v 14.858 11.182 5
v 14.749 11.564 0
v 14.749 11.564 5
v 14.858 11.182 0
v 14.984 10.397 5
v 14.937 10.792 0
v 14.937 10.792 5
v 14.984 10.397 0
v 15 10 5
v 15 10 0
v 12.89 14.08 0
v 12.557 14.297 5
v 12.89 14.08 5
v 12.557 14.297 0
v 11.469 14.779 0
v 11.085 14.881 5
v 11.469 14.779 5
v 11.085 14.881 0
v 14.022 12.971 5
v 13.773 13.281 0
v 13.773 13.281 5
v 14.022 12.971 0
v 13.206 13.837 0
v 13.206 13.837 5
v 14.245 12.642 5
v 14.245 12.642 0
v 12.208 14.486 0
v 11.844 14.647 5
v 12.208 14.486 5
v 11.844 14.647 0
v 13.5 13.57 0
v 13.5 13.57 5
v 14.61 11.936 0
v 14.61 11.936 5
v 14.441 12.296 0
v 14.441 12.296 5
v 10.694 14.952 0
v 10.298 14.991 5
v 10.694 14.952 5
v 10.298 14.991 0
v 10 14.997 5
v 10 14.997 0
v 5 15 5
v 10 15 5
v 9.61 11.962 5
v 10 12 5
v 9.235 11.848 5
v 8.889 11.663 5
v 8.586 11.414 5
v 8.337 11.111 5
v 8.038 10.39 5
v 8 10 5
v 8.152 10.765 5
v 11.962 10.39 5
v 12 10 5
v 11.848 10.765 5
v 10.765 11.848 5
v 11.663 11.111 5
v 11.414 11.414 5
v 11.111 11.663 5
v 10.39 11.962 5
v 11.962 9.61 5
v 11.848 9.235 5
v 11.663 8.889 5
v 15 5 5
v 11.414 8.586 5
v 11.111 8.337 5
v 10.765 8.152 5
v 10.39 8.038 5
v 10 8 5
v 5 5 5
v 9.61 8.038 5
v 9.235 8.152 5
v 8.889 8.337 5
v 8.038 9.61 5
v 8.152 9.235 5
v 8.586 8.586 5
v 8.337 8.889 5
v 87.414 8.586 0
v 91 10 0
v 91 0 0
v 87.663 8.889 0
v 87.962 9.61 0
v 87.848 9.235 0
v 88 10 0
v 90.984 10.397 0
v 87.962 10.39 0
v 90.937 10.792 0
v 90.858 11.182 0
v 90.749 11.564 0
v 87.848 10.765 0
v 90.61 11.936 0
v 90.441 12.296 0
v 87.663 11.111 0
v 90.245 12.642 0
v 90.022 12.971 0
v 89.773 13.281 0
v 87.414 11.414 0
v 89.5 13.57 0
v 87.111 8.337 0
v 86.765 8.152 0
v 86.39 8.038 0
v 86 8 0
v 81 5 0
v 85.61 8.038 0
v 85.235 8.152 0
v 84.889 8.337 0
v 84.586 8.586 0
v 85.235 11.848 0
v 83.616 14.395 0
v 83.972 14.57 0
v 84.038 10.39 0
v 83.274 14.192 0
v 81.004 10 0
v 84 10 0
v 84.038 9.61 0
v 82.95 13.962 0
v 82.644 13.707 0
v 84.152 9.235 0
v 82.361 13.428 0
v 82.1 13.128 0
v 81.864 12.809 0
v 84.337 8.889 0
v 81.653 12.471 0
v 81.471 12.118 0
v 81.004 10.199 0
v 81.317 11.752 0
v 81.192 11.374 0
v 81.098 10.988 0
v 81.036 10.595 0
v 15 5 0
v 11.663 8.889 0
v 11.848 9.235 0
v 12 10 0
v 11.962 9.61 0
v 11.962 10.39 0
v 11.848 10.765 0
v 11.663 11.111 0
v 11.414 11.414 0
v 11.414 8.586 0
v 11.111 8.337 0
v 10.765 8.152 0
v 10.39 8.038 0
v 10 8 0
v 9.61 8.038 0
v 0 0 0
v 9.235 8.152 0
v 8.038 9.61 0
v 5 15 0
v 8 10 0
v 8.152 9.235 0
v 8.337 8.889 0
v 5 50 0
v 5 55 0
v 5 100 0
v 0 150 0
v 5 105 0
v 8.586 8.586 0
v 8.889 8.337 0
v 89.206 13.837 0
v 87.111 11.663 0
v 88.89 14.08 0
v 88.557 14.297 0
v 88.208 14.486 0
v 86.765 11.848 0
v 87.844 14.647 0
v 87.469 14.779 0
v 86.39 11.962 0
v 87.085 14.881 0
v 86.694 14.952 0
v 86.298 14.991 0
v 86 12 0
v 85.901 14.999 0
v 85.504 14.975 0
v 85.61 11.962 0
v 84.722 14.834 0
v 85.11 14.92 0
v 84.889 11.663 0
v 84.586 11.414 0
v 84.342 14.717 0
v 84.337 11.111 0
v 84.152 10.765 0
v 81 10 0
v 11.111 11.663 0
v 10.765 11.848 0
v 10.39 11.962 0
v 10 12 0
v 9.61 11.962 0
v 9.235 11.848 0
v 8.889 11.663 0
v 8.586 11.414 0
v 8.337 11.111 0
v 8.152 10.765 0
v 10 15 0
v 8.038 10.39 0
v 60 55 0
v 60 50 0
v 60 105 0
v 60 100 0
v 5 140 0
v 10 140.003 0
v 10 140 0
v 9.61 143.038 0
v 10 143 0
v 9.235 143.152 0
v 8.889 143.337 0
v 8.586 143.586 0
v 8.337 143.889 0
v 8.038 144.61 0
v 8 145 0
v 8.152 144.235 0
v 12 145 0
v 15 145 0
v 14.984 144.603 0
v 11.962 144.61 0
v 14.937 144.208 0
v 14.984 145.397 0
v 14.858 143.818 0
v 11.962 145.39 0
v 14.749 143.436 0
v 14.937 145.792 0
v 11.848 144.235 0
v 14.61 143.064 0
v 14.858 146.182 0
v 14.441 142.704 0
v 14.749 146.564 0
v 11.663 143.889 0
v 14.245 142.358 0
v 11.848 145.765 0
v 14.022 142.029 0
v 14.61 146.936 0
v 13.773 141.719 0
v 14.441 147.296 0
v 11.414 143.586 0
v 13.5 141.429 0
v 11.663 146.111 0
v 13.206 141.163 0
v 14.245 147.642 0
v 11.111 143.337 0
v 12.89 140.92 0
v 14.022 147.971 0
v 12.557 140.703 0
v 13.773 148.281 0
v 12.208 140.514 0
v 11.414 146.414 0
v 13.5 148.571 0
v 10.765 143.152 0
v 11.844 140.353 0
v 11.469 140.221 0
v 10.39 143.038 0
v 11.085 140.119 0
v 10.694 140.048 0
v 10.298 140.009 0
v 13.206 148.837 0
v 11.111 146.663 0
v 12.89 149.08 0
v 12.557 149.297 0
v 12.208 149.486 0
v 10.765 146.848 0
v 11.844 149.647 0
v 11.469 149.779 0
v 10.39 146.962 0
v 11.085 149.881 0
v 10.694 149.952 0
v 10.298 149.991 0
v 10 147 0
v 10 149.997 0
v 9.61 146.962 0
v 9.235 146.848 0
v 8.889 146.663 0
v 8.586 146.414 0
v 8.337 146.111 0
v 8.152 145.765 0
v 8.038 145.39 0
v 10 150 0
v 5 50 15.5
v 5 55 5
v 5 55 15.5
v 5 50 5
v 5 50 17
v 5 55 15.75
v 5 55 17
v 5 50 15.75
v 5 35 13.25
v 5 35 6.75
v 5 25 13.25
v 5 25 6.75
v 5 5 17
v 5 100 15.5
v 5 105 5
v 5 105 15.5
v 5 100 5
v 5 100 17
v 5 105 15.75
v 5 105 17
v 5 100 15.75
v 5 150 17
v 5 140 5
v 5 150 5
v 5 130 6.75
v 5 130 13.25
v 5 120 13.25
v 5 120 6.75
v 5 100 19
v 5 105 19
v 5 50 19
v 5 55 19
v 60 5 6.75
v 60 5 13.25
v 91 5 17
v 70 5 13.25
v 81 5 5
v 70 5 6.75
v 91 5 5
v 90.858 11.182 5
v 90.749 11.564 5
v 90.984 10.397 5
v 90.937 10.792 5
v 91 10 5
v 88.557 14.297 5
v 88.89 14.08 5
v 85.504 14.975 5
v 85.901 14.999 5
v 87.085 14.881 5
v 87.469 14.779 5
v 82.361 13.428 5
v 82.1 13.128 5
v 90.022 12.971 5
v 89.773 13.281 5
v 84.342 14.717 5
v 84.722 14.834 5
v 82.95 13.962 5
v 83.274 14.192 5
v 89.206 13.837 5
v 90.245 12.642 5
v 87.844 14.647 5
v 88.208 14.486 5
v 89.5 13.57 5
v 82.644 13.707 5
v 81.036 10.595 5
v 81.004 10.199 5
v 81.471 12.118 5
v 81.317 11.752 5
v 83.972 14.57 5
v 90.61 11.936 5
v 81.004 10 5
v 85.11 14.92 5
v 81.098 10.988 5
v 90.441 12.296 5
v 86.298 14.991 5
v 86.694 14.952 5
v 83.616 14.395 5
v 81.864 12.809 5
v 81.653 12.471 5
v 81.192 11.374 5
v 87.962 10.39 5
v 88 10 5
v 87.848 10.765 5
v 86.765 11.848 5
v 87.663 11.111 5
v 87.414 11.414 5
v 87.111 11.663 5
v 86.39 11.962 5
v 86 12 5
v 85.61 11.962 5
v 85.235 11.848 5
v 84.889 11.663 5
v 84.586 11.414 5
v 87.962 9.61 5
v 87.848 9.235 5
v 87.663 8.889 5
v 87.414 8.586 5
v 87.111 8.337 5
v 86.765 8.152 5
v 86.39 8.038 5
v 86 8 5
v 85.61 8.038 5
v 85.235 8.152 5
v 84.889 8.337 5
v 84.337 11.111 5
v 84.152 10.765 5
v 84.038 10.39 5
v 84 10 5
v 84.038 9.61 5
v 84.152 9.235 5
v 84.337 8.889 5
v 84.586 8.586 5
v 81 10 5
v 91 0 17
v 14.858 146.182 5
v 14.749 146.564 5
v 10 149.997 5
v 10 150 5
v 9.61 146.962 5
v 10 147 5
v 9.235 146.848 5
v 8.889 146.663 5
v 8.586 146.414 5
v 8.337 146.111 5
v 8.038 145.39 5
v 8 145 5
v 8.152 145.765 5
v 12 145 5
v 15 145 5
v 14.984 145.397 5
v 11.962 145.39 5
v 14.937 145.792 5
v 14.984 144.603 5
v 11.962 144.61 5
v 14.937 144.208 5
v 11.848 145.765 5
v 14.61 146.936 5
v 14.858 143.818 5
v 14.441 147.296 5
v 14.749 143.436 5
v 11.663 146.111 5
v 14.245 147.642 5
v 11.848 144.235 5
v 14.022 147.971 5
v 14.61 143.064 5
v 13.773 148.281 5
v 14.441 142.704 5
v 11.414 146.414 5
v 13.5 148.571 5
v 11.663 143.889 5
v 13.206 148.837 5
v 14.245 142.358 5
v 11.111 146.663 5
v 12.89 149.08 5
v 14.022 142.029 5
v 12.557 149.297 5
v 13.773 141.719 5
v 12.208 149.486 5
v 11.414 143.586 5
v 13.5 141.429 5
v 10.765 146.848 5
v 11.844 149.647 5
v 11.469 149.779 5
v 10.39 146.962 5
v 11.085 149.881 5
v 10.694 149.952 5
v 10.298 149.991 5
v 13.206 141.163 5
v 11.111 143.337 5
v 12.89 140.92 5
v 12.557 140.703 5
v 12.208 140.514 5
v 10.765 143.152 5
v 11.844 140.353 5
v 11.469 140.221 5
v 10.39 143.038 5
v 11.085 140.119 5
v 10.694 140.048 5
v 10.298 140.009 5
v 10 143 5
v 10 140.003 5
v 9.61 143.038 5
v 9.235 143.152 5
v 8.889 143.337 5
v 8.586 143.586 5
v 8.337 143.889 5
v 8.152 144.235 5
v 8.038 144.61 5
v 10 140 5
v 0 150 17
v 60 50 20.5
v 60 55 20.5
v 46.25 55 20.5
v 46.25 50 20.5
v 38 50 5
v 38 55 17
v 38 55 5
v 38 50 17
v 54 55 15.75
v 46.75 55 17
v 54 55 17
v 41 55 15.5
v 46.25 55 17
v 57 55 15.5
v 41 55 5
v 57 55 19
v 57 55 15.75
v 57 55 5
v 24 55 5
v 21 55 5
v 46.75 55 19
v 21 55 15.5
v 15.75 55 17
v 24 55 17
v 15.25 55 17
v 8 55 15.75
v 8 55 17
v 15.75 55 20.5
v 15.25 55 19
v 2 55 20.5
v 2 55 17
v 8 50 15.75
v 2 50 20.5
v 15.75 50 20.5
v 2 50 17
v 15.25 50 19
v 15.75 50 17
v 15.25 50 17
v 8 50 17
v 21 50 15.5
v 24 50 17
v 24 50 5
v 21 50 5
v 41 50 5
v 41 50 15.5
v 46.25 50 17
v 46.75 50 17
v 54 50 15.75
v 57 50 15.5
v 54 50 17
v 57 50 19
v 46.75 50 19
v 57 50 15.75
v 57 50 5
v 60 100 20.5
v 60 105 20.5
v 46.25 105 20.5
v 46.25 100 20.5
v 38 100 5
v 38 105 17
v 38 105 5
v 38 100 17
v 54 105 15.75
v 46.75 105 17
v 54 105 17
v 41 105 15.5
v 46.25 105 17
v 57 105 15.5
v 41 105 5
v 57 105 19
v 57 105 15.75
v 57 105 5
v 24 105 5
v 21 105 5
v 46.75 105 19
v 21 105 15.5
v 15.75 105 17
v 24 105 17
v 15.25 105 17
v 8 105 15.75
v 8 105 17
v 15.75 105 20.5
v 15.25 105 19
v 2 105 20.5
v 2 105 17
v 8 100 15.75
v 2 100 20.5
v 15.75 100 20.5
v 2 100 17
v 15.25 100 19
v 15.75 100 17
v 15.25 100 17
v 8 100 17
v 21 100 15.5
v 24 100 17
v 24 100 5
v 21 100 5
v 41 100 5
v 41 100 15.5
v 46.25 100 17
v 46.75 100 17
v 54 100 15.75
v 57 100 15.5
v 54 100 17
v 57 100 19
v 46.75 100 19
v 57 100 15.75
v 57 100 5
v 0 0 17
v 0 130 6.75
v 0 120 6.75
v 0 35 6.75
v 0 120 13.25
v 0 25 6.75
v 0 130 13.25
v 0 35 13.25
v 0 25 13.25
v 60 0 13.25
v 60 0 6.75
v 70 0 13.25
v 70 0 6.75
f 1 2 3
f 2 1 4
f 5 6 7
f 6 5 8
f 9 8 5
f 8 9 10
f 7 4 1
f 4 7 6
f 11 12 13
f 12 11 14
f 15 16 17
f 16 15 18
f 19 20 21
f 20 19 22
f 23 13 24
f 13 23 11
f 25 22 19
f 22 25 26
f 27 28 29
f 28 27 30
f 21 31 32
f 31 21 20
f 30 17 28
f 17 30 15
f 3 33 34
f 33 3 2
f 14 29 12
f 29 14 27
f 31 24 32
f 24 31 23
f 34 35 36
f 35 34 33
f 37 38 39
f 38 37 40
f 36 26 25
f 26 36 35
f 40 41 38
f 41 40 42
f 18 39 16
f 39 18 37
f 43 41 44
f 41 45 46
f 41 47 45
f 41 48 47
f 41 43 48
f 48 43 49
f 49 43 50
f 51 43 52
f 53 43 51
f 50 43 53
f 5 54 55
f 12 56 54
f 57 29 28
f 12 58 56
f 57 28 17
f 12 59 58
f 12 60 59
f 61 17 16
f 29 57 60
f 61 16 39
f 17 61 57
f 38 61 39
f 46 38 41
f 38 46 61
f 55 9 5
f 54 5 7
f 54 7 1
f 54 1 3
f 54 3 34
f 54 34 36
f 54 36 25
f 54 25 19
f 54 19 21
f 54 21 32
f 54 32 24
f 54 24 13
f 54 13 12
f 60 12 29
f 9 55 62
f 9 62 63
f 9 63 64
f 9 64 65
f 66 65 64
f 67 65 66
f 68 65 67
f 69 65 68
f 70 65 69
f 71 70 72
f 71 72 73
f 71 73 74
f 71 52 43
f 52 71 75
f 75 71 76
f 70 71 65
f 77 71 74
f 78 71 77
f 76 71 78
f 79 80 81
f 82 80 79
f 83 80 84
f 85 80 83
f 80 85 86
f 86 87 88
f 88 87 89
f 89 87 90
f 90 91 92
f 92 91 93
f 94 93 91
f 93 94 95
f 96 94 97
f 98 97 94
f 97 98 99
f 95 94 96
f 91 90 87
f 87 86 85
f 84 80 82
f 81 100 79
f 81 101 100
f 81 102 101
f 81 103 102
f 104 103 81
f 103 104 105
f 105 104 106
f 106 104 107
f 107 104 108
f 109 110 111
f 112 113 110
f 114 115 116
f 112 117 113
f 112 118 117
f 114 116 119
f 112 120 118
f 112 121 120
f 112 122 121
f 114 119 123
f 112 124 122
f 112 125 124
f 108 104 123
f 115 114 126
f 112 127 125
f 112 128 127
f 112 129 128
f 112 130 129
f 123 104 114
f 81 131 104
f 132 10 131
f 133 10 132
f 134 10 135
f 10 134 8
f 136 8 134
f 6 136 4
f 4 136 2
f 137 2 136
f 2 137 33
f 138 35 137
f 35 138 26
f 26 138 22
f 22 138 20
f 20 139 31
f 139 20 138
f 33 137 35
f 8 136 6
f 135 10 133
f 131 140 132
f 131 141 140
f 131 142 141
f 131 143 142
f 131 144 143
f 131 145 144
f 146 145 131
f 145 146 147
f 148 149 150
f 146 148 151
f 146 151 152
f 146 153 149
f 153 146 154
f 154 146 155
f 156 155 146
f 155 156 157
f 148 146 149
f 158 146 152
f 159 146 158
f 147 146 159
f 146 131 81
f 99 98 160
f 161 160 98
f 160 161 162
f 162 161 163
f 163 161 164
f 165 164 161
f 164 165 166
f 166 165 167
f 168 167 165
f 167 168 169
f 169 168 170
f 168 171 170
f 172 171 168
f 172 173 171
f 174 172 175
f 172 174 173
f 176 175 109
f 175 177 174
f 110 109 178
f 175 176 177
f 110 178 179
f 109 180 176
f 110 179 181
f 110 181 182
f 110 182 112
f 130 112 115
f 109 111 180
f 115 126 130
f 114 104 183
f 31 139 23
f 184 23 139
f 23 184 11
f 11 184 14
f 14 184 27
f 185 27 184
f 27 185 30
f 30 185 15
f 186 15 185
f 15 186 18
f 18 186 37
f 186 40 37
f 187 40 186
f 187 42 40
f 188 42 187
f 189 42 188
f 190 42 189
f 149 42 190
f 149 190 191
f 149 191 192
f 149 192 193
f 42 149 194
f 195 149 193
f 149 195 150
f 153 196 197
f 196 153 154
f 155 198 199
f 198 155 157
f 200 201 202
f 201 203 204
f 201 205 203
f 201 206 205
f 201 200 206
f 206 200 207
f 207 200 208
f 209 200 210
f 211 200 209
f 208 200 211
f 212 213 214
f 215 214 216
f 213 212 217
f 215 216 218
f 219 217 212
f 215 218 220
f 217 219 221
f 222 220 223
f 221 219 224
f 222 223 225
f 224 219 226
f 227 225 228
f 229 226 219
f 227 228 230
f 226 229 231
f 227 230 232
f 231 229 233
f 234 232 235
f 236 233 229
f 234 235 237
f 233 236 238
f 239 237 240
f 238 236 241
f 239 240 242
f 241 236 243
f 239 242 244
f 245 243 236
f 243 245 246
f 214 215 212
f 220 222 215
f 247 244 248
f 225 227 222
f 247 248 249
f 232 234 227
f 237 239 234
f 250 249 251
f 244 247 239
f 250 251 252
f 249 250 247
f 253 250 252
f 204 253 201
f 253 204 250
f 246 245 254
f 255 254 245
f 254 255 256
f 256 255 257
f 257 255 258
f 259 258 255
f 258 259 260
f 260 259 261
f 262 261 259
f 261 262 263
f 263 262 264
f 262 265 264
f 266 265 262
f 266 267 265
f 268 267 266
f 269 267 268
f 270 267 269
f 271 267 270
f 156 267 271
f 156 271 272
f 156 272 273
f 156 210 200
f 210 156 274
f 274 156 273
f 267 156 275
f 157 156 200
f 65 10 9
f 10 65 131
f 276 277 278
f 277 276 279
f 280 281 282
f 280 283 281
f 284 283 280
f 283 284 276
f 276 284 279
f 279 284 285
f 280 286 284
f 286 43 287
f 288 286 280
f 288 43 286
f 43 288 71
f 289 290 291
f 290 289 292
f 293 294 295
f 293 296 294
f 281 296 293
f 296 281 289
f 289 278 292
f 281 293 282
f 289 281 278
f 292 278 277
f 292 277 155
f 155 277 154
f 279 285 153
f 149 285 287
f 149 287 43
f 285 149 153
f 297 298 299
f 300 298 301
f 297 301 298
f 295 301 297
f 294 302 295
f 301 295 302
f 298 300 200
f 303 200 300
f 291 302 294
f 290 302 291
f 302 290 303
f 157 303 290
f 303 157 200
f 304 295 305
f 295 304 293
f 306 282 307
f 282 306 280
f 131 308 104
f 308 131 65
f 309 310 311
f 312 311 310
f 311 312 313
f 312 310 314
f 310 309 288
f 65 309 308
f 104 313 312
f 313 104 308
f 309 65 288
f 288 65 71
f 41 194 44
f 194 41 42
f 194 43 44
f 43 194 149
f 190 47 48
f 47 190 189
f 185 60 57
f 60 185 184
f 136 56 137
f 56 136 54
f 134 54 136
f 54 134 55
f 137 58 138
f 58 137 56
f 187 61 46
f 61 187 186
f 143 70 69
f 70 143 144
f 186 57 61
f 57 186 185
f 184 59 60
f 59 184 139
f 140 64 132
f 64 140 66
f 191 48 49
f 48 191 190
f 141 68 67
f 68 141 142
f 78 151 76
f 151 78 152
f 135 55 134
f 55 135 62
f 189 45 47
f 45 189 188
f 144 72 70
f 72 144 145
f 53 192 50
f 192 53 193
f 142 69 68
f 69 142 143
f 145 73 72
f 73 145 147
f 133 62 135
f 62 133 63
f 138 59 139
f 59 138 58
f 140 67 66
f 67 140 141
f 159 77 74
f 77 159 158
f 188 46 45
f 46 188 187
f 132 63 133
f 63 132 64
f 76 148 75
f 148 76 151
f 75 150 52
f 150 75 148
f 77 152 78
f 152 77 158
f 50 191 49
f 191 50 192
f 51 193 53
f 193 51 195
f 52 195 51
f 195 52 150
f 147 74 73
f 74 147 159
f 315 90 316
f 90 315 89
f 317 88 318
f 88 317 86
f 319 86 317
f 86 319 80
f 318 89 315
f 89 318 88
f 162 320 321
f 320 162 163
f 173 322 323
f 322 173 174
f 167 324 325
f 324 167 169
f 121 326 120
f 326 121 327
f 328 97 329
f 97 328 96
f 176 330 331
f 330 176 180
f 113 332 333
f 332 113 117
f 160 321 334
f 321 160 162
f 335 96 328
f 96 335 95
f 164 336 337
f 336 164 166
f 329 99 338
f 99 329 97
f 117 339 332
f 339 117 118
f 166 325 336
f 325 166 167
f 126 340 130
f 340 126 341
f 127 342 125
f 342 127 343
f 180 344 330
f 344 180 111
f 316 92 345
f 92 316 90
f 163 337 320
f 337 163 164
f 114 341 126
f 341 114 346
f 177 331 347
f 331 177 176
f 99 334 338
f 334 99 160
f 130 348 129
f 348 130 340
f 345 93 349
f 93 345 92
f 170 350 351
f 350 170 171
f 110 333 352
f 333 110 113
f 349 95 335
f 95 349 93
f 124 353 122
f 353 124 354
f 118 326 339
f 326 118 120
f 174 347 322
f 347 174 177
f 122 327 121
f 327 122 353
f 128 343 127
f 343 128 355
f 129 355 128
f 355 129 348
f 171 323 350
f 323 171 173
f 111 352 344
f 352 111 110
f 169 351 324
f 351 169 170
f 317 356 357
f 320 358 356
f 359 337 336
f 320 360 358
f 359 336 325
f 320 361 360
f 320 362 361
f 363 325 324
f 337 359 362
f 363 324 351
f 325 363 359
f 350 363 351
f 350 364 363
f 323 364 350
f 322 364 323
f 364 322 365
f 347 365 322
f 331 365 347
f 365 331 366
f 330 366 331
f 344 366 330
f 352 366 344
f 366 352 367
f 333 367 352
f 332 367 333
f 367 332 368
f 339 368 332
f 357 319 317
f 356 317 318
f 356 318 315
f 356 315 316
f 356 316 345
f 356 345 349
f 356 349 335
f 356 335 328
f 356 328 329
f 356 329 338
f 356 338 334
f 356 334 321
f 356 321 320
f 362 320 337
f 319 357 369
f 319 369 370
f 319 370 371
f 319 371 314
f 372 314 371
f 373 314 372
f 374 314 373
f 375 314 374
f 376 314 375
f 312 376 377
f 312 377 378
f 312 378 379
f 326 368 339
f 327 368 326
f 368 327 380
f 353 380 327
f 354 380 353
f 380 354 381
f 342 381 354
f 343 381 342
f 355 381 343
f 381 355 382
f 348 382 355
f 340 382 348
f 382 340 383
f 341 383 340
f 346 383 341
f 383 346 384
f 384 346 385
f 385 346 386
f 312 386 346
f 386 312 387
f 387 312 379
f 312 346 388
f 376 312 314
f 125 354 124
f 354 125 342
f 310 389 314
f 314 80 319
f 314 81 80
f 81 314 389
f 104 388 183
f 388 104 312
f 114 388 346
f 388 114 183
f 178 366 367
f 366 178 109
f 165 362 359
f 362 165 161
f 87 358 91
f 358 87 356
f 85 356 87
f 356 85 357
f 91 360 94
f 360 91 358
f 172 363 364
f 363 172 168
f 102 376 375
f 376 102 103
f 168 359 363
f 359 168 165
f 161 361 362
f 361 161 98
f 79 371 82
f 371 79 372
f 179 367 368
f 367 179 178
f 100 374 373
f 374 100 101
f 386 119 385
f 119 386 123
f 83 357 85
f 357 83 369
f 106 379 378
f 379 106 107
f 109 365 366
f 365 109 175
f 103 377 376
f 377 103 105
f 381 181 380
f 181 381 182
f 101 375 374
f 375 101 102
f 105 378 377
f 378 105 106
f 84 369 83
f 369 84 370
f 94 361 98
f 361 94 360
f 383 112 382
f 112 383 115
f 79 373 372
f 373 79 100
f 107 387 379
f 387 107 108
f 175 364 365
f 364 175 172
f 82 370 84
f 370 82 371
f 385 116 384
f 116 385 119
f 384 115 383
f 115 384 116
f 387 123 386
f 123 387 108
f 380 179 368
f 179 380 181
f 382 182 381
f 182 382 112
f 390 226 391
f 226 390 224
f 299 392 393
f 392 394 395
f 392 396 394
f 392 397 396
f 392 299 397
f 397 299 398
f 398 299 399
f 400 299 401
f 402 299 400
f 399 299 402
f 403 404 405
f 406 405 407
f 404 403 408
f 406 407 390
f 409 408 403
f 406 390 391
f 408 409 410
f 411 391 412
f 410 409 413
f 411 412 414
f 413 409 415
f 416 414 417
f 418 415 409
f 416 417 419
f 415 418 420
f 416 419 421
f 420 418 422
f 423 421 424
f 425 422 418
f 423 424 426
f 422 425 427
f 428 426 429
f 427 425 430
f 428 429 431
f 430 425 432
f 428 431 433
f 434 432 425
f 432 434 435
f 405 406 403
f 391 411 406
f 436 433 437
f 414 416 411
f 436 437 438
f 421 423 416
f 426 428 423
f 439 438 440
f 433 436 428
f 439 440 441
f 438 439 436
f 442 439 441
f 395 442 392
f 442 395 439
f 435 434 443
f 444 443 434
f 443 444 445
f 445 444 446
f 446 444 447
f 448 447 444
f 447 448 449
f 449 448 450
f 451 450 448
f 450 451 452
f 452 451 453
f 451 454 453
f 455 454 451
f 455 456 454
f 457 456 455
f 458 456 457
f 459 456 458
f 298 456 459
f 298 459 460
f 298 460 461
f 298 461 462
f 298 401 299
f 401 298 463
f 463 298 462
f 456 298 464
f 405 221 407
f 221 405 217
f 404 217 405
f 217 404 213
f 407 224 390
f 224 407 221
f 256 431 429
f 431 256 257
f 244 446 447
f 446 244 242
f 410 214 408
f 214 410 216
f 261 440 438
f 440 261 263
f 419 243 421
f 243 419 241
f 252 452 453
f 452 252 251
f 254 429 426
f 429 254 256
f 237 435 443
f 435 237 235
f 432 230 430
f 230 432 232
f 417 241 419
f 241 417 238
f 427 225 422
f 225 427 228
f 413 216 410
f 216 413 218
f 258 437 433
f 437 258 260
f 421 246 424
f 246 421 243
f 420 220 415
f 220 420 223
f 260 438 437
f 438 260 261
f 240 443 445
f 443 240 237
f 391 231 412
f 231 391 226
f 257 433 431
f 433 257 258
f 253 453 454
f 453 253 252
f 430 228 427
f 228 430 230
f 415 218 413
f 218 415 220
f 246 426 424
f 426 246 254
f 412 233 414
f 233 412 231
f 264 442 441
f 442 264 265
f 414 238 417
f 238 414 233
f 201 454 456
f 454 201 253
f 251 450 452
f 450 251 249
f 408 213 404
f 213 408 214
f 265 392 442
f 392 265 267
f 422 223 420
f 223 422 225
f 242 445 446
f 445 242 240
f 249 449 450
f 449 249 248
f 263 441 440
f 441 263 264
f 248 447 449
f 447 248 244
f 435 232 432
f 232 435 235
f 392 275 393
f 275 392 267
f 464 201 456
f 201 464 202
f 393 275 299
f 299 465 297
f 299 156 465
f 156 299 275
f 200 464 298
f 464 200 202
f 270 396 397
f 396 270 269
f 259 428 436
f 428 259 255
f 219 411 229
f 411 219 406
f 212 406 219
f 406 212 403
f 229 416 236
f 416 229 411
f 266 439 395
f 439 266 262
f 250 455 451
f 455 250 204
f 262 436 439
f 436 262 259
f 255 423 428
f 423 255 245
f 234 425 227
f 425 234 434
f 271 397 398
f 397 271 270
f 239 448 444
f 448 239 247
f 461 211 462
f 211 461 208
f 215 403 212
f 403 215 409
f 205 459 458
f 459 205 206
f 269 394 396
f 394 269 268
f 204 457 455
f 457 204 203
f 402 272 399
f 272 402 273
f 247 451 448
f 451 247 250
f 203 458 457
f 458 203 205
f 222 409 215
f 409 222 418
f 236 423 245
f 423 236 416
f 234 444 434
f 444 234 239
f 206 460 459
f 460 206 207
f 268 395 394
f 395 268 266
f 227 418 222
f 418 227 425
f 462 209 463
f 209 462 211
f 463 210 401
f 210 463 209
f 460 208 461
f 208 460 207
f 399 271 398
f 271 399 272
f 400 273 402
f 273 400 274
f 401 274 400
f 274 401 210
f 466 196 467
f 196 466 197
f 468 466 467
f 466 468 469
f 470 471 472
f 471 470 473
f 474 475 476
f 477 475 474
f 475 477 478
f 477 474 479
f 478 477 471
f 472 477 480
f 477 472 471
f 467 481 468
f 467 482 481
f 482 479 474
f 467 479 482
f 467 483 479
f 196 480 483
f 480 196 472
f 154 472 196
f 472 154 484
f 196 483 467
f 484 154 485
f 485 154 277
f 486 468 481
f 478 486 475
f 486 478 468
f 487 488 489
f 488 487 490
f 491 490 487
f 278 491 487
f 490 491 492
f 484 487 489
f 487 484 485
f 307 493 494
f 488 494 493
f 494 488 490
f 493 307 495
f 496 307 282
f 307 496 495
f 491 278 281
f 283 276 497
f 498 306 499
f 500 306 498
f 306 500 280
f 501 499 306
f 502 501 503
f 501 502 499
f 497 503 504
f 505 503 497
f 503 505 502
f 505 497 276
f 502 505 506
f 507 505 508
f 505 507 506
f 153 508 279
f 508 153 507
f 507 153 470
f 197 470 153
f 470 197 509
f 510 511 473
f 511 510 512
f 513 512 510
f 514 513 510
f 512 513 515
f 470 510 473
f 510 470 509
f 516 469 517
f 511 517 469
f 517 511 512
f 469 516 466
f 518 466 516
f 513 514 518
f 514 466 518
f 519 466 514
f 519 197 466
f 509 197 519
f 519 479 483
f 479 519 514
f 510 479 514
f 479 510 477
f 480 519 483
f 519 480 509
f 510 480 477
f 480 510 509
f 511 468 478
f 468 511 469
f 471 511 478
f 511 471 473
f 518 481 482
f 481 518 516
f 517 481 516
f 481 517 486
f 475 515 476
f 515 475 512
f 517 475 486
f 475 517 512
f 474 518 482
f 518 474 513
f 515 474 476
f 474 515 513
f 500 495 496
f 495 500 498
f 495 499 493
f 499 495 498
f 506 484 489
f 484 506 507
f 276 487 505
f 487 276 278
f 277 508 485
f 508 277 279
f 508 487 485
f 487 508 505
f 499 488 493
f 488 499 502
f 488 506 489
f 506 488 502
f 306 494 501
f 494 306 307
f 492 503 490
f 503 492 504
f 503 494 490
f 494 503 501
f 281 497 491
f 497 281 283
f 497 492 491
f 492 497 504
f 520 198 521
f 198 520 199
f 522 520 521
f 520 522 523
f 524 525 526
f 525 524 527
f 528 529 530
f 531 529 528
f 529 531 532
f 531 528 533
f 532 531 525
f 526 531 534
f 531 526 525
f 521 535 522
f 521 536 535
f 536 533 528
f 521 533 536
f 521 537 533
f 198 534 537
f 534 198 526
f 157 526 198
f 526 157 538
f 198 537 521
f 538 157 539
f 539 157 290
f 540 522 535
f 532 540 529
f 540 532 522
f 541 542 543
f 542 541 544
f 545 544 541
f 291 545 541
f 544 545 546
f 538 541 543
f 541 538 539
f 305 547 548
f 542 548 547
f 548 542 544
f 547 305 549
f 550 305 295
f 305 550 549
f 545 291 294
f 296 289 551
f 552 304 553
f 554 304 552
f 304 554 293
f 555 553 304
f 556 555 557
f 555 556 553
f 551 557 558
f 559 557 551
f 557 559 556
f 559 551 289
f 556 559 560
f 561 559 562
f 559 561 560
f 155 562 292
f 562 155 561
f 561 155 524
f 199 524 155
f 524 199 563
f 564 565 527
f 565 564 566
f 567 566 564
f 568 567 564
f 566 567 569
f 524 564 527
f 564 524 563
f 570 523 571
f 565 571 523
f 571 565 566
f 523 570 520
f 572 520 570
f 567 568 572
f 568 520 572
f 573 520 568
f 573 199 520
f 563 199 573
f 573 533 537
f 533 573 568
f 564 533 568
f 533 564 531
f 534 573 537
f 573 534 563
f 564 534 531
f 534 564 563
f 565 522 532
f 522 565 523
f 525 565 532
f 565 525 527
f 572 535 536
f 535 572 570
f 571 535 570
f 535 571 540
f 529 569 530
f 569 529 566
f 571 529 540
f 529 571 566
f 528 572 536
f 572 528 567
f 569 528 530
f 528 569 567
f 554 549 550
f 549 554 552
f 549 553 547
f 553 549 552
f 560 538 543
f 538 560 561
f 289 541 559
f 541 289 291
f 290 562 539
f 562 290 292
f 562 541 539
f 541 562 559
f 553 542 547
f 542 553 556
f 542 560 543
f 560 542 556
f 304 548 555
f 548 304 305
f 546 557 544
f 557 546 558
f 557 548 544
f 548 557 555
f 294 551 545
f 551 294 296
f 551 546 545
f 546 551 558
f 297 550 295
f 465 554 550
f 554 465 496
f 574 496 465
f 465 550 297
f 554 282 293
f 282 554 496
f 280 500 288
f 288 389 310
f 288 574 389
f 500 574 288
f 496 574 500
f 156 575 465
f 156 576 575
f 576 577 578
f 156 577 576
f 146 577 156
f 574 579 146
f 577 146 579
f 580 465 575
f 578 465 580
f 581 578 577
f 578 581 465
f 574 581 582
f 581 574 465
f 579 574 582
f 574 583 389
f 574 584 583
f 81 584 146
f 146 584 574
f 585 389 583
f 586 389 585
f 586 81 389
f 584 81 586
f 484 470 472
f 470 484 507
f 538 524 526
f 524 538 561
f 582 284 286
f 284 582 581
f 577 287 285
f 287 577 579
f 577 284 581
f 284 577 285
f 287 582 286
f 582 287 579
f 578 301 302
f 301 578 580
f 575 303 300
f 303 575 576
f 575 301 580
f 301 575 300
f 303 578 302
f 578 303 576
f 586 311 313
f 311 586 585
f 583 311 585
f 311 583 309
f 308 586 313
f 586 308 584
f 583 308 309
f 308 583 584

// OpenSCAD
$fa = 1;
$fs = 0.4;

//translate([48, 77.5, -1])
//    mks();

difference() {
    tudo();
    
    translate([-0.5, 25, 6.75])
        cube([6, 10, 6.5]);
    
    translate([-0.5, 120, 6.75])
        cube([6, 10, 6.5]);
    
    translate([60, -0.5, 6.75])
        cube([10, 6, 6.5]);
}

module tudo() {
    cube([5, 5+143+2, 20-3]);
    cube([5+84+2, 5, 20-3]);

    translate([10, 10, 0])
        difference() {
            union() {
                cylinder(r=5, h=5);
                translate([-5, -5, 0])
                    cube([10, 5, 5]);
                translate([-5, -5, 0])
                    cube([5, 10, 5]);
            }
            translate([0, 0, -0.5])
                cylinder(r=2, h=6);
       }

    translate([10+76, 10, 0])
        difference() {
            union() {
                cylinder(r=5, h=5);
                translate([-5, -5, 0])
                    cube([10, 5, 5]);
            }
            translate([0, 0, -0.5])
                cylinder(r=2, h=6);
       }

    translate([10, 10+135, 0])
        difference() {
            union() {
                cylinder(r=5, h=5);
                translate([-5, -5, 0])
                    cube([5, 10, 5]);
            }
            translate([0, 0, -0.5])
                cylinder(r=2, h=6);
       }
       
    translate([38, 50, 0])
        holder();

    translate([24, 50, 0])
        mirror([1, 0, 0])
            holder();
       
    translate([23, 50, 0])
        cube([16, 5, 5]);
       
    //
    translate([38, 100, 0])
        holder();

    translate([24, 100, 0])
        mirror([1, 0, 0])
            holder();
       
    translate([23, 100, 0])
        cube([16, 5, 5]);
}

module holder() {
    difference() {
        cube([22, 5, 20.5]);
        
        translate([3, -0.5, 5])
            cube([16, 6, 10.5]);
        
        translate([-0.5, -0.5, 17])
            cube([8.75, 6, 4]);
        
        translate([8.75, -0.5, 17])
            cube([10.25, 6, 2]);
        
        translate([16, -0.5, 17-1.25])
            cube([3, 6, 1.5]);
    }
}

module mks() {
    difference() {
        cube([84, 143, 1], center=true);
        
        translate([-76/2, -135/2, 0])
            cylinder(r=2, h=5, center=true);
        translate([76/2, -135/2, 0])
            cylinder(r=2, h=5, center=true);
        translate([-76/2, 135/2, 0])
            cylinder(r=2, h=5, center=true);
        translate([76/2, 135/2, 0])
            cylinder(r=2, h=5, center=true);
    }
}
